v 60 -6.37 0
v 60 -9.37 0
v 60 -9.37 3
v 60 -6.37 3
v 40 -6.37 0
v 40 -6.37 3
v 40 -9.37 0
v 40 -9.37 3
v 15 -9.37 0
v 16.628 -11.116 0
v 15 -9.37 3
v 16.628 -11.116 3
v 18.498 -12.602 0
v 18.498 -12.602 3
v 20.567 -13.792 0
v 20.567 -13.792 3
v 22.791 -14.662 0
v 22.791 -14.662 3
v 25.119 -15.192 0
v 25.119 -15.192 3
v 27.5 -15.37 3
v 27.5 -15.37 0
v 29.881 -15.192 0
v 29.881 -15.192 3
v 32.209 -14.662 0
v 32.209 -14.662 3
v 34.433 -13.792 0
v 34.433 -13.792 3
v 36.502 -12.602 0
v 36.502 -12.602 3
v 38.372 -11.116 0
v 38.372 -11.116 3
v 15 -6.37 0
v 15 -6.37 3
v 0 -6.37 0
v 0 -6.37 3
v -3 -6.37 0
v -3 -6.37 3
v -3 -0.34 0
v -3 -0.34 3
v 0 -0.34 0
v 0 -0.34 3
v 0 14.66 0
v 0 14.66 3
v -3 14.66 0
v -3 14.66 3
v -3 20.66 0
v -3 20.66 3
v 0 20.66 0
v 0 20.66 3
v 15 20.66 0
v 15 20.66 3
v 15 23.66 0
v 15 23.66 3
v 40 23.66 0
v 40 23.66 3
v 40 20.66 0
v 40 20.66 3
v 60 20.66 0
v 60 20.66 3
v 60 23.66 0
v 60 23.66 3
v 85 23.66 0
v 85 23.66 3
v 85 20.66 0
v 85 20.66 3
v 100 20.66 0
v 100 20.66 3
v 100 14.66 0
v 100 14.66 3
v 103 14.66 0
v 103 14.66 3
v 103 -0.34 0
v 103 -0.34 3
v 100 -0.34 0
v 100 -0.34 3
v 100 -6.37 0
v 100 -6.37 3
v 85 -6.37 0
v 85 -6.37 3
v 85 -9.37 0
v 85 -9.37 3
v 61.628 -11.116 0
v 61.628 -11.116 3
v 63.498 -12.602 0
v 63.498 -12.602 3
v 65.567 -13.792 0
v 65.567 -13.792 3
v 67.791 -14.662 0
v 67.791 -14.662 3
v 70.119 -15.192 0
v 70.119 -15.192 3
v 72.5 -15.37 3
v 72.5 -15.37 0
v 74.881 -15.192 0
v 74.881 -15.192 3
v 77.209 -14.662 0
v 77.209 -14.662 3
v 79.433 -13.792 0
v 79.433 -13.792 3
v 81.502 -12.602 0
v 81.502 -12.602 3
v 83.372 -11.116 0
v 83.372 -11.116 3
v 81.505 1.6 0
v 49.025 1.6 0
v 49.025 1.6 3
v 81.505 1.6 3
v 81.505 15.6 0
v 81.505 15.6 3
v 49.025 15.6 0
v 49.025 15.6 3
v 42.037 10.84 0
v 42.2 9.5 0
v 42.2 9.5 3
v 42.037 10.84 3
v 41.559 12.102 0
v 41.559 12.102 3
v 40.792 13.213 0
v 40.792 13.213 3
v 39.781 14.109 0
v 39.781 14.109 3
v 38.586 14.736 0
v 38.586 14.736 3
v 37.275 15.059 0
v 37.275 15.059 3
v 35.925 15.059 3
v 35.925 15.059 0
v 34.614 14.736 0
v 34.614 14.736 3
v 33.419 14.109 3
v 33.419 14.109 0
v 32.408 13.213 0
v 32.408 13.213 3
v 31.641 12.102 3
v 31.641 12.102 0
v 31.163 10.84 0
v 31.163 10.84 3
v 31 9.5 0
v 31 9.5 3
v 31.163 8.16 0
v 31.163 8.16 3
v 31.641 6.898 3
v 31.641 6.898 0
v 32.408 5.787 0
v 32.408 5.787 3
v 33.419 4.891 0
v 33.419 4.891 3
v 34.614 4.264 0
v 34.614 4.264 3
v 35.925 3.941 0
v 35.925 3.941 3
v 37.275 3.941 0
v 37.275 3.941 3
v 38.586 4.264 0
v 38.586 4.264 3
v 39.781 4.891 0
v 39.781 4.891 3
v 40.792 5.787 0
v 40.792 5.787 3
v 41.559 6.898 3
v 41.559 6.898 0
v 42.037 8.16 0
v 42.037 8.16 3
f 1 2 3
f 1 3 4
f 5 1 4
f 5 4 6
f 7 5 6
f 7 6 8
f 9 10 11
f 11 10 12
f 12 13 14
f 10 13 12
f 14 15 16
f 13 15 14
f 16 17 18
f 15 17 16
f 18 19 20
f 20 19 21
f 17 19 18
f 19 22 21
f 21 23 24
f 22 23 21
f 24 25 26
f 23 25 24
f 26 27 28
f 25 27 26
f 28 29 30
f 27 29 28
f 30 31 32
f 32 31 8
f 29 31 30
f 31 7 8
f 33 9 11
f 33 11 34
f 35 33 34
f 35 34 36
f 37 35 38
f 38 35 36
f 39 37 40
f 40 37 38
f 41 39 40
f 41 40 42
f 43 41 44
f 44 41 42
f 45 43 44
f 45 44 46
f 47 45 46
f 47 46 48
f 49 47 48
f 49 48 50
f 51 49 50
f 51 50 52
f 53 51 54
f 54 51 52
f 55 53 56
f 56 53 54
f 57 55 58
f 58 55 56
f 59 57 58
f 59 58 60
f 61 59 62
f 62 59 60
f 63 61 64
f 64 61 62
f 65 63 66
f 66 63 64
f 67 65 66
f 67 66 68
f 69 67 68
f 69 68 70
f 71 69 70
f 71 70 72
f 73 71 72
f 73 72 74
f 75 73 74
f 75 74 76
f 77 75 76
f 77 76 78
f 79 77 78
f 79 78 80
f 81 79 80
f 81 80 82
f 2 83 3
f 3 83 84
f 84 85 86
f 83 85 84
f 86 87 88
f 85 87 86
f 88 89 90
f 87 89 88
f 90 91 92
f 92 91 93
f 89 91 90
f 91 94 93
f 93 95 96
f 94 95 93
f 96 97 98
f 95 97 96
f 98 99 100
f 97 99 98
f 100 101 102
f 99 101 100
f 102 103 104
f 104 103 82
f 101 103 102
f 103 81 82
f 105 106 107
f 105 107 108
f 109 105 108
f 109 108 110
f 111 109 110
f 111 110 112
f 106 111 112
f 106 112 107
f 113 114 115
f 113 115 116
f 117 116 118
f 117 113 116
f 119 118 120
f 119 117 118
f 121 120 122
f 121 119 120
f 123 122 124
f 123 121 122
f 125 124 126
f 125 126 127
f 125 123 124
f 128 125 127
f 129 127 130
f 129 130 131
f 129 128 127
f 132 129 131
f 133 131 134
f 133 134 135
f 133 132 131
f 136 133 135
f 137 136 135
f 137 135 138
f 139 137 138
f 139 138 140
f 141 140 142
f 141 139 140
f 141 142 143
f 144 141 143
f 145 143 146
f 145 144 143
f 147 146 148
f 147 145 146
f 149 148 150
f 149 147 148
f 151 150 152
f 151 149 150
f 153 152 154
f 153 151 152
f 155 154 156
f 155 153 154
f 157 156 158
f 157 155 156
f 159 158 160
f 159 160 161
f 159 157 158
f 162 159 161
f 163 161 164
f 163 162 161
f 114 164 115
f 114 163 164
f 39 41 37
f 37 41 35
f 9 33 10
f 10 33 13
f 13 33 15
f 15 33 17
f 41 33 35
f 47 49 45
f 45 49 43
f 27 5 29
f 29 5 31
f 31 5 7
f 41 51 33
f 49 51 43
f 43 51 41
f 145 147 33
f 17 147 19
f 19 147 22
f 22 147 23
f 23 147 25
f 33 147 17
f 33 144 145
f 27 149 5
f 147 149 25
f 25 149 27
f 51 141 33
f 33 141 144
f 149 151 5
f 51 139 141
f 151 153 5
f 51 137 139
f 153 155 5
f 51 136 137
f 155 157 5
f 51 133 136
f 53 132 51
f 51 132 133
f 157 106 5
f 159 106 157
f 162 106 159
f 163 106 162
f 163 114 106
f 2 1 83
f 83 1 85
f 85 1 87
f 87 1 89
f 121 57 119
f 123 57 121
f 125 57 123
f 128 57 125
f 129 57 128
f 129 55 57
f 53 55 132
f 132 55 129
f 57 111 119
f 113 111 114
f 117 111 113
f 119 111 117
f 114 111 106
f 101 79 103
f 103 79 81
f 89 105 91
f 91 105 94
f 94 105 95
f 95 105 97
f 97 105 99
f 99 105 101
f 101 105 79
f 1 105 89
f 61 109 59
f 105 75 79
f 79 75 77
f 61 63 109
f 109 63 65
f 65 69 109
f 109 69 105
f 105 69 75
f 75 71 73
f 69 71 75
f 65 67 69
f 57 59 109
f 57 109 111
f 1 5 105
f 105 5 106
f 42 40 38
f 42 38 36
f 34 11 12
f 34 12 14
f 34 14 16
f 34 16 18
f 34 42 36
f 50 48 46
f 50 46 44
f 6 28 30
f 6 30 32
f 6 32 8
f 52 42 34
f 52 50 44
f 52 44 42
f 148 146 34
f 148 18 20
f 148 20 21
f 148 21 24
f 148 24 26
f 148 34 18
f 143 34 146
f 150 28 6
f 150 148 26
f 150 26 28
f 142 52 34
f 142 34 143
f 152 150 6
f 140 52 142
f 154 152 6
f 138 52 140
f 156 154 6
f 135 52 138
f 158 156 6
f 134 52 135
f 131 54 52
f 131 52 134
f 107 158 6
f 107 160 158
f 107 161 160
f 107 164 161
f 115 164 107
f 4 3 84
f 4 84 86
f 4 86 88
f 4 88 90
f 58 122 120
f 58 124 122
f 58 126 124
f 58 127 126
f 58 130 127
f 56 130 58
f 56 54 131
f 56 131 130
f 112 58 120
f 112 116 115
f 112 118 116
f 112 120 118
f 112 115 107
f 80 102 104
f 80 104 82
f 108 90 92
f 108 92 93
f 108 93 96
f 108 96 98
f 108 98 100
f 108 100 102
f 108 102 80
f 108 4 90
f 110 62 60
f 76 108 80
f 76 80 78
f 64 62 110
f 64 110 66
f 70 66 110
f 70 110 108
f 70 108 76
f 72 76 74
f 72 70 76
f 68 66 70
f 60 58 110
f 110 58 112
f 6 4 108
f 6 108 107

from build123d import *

# Parameters (mm, degrees)
SKETCH_R      = 5.6
SKETCH_W      = 32.48
SKETCH_H      = 14
EXTRUDE_DEPTH = 3


with BuildPart() as part:
    # Sketch → Extrude (new body)
    with BuildSketch(Plane.XY):
        with BuildLine():
            Line((40, -6.37), (40, -9.37))
            ThreePointArc((15, -9.37), (27.5, -15.37), (40, -9.37))
            Line((15, -9.37), (15, -6.37))
            Line((15, -6.37), (0, -6.37))
            Line((-3, -6.37), (0, -6.37))
            Line((-3, -0.34), (-3, -6.37))
            Line((-3, -0.34), (0, -0.34))
            Line((0, 14.66), (0, -0.34))
            Line((0, 14.66), (-3, 14.66))
            Line((-3, 14.66), (-3, 20.66))
            Line((-3, 20.66), (0, 20.66))
            Line((0, 20.66), (15, 20.66))
            Line((15, 23.66), (15, 20.66))
            Line((40, 23.66), (15, 23.66))
            Line((40, 20.66), (40, 23.66))
            Line((40, 20.66), (60, 20.66))
            Line((60, 23.66), (60, 20.66))
            Line((85, 23.66), (60, 23.66))
            Line((85, 20.66), (85, 23.66))
            Line((85, 20.66), (100, 20.66))
            Line((100, 20.66), (100, 14.66))
            Line((100, 14.66), (103, 14.66))
            Line((103, 14.66), (103, -0.34))
            Line((103, -0.34), (100, -0.34))
            Line((100, -0.34), (100, -6.37))
            Line((100, -6.37), (85, -6.37))
            Line((85, -6.37), (85, -9.37))
            ThreePointArc((60, -9.37), (72.5, -15.37), (85, -9.37))
            Line((60, -9.37), (60, -6.37))
            Line((60, -6.37), (40, -6.37))
        make_face()
        with Locations((36.6, 9.5)):
            Circle(SKETCH_R, mode=Mode.SUBTRACT)
        with Locations((65.265, 8.6)):
            Rectangle(SKETCH_W, SKETCH_H, mode=Mode.SUBTRACT)
    extrude(amount=EXTRUDE_DEPTH)


solid = part.part
